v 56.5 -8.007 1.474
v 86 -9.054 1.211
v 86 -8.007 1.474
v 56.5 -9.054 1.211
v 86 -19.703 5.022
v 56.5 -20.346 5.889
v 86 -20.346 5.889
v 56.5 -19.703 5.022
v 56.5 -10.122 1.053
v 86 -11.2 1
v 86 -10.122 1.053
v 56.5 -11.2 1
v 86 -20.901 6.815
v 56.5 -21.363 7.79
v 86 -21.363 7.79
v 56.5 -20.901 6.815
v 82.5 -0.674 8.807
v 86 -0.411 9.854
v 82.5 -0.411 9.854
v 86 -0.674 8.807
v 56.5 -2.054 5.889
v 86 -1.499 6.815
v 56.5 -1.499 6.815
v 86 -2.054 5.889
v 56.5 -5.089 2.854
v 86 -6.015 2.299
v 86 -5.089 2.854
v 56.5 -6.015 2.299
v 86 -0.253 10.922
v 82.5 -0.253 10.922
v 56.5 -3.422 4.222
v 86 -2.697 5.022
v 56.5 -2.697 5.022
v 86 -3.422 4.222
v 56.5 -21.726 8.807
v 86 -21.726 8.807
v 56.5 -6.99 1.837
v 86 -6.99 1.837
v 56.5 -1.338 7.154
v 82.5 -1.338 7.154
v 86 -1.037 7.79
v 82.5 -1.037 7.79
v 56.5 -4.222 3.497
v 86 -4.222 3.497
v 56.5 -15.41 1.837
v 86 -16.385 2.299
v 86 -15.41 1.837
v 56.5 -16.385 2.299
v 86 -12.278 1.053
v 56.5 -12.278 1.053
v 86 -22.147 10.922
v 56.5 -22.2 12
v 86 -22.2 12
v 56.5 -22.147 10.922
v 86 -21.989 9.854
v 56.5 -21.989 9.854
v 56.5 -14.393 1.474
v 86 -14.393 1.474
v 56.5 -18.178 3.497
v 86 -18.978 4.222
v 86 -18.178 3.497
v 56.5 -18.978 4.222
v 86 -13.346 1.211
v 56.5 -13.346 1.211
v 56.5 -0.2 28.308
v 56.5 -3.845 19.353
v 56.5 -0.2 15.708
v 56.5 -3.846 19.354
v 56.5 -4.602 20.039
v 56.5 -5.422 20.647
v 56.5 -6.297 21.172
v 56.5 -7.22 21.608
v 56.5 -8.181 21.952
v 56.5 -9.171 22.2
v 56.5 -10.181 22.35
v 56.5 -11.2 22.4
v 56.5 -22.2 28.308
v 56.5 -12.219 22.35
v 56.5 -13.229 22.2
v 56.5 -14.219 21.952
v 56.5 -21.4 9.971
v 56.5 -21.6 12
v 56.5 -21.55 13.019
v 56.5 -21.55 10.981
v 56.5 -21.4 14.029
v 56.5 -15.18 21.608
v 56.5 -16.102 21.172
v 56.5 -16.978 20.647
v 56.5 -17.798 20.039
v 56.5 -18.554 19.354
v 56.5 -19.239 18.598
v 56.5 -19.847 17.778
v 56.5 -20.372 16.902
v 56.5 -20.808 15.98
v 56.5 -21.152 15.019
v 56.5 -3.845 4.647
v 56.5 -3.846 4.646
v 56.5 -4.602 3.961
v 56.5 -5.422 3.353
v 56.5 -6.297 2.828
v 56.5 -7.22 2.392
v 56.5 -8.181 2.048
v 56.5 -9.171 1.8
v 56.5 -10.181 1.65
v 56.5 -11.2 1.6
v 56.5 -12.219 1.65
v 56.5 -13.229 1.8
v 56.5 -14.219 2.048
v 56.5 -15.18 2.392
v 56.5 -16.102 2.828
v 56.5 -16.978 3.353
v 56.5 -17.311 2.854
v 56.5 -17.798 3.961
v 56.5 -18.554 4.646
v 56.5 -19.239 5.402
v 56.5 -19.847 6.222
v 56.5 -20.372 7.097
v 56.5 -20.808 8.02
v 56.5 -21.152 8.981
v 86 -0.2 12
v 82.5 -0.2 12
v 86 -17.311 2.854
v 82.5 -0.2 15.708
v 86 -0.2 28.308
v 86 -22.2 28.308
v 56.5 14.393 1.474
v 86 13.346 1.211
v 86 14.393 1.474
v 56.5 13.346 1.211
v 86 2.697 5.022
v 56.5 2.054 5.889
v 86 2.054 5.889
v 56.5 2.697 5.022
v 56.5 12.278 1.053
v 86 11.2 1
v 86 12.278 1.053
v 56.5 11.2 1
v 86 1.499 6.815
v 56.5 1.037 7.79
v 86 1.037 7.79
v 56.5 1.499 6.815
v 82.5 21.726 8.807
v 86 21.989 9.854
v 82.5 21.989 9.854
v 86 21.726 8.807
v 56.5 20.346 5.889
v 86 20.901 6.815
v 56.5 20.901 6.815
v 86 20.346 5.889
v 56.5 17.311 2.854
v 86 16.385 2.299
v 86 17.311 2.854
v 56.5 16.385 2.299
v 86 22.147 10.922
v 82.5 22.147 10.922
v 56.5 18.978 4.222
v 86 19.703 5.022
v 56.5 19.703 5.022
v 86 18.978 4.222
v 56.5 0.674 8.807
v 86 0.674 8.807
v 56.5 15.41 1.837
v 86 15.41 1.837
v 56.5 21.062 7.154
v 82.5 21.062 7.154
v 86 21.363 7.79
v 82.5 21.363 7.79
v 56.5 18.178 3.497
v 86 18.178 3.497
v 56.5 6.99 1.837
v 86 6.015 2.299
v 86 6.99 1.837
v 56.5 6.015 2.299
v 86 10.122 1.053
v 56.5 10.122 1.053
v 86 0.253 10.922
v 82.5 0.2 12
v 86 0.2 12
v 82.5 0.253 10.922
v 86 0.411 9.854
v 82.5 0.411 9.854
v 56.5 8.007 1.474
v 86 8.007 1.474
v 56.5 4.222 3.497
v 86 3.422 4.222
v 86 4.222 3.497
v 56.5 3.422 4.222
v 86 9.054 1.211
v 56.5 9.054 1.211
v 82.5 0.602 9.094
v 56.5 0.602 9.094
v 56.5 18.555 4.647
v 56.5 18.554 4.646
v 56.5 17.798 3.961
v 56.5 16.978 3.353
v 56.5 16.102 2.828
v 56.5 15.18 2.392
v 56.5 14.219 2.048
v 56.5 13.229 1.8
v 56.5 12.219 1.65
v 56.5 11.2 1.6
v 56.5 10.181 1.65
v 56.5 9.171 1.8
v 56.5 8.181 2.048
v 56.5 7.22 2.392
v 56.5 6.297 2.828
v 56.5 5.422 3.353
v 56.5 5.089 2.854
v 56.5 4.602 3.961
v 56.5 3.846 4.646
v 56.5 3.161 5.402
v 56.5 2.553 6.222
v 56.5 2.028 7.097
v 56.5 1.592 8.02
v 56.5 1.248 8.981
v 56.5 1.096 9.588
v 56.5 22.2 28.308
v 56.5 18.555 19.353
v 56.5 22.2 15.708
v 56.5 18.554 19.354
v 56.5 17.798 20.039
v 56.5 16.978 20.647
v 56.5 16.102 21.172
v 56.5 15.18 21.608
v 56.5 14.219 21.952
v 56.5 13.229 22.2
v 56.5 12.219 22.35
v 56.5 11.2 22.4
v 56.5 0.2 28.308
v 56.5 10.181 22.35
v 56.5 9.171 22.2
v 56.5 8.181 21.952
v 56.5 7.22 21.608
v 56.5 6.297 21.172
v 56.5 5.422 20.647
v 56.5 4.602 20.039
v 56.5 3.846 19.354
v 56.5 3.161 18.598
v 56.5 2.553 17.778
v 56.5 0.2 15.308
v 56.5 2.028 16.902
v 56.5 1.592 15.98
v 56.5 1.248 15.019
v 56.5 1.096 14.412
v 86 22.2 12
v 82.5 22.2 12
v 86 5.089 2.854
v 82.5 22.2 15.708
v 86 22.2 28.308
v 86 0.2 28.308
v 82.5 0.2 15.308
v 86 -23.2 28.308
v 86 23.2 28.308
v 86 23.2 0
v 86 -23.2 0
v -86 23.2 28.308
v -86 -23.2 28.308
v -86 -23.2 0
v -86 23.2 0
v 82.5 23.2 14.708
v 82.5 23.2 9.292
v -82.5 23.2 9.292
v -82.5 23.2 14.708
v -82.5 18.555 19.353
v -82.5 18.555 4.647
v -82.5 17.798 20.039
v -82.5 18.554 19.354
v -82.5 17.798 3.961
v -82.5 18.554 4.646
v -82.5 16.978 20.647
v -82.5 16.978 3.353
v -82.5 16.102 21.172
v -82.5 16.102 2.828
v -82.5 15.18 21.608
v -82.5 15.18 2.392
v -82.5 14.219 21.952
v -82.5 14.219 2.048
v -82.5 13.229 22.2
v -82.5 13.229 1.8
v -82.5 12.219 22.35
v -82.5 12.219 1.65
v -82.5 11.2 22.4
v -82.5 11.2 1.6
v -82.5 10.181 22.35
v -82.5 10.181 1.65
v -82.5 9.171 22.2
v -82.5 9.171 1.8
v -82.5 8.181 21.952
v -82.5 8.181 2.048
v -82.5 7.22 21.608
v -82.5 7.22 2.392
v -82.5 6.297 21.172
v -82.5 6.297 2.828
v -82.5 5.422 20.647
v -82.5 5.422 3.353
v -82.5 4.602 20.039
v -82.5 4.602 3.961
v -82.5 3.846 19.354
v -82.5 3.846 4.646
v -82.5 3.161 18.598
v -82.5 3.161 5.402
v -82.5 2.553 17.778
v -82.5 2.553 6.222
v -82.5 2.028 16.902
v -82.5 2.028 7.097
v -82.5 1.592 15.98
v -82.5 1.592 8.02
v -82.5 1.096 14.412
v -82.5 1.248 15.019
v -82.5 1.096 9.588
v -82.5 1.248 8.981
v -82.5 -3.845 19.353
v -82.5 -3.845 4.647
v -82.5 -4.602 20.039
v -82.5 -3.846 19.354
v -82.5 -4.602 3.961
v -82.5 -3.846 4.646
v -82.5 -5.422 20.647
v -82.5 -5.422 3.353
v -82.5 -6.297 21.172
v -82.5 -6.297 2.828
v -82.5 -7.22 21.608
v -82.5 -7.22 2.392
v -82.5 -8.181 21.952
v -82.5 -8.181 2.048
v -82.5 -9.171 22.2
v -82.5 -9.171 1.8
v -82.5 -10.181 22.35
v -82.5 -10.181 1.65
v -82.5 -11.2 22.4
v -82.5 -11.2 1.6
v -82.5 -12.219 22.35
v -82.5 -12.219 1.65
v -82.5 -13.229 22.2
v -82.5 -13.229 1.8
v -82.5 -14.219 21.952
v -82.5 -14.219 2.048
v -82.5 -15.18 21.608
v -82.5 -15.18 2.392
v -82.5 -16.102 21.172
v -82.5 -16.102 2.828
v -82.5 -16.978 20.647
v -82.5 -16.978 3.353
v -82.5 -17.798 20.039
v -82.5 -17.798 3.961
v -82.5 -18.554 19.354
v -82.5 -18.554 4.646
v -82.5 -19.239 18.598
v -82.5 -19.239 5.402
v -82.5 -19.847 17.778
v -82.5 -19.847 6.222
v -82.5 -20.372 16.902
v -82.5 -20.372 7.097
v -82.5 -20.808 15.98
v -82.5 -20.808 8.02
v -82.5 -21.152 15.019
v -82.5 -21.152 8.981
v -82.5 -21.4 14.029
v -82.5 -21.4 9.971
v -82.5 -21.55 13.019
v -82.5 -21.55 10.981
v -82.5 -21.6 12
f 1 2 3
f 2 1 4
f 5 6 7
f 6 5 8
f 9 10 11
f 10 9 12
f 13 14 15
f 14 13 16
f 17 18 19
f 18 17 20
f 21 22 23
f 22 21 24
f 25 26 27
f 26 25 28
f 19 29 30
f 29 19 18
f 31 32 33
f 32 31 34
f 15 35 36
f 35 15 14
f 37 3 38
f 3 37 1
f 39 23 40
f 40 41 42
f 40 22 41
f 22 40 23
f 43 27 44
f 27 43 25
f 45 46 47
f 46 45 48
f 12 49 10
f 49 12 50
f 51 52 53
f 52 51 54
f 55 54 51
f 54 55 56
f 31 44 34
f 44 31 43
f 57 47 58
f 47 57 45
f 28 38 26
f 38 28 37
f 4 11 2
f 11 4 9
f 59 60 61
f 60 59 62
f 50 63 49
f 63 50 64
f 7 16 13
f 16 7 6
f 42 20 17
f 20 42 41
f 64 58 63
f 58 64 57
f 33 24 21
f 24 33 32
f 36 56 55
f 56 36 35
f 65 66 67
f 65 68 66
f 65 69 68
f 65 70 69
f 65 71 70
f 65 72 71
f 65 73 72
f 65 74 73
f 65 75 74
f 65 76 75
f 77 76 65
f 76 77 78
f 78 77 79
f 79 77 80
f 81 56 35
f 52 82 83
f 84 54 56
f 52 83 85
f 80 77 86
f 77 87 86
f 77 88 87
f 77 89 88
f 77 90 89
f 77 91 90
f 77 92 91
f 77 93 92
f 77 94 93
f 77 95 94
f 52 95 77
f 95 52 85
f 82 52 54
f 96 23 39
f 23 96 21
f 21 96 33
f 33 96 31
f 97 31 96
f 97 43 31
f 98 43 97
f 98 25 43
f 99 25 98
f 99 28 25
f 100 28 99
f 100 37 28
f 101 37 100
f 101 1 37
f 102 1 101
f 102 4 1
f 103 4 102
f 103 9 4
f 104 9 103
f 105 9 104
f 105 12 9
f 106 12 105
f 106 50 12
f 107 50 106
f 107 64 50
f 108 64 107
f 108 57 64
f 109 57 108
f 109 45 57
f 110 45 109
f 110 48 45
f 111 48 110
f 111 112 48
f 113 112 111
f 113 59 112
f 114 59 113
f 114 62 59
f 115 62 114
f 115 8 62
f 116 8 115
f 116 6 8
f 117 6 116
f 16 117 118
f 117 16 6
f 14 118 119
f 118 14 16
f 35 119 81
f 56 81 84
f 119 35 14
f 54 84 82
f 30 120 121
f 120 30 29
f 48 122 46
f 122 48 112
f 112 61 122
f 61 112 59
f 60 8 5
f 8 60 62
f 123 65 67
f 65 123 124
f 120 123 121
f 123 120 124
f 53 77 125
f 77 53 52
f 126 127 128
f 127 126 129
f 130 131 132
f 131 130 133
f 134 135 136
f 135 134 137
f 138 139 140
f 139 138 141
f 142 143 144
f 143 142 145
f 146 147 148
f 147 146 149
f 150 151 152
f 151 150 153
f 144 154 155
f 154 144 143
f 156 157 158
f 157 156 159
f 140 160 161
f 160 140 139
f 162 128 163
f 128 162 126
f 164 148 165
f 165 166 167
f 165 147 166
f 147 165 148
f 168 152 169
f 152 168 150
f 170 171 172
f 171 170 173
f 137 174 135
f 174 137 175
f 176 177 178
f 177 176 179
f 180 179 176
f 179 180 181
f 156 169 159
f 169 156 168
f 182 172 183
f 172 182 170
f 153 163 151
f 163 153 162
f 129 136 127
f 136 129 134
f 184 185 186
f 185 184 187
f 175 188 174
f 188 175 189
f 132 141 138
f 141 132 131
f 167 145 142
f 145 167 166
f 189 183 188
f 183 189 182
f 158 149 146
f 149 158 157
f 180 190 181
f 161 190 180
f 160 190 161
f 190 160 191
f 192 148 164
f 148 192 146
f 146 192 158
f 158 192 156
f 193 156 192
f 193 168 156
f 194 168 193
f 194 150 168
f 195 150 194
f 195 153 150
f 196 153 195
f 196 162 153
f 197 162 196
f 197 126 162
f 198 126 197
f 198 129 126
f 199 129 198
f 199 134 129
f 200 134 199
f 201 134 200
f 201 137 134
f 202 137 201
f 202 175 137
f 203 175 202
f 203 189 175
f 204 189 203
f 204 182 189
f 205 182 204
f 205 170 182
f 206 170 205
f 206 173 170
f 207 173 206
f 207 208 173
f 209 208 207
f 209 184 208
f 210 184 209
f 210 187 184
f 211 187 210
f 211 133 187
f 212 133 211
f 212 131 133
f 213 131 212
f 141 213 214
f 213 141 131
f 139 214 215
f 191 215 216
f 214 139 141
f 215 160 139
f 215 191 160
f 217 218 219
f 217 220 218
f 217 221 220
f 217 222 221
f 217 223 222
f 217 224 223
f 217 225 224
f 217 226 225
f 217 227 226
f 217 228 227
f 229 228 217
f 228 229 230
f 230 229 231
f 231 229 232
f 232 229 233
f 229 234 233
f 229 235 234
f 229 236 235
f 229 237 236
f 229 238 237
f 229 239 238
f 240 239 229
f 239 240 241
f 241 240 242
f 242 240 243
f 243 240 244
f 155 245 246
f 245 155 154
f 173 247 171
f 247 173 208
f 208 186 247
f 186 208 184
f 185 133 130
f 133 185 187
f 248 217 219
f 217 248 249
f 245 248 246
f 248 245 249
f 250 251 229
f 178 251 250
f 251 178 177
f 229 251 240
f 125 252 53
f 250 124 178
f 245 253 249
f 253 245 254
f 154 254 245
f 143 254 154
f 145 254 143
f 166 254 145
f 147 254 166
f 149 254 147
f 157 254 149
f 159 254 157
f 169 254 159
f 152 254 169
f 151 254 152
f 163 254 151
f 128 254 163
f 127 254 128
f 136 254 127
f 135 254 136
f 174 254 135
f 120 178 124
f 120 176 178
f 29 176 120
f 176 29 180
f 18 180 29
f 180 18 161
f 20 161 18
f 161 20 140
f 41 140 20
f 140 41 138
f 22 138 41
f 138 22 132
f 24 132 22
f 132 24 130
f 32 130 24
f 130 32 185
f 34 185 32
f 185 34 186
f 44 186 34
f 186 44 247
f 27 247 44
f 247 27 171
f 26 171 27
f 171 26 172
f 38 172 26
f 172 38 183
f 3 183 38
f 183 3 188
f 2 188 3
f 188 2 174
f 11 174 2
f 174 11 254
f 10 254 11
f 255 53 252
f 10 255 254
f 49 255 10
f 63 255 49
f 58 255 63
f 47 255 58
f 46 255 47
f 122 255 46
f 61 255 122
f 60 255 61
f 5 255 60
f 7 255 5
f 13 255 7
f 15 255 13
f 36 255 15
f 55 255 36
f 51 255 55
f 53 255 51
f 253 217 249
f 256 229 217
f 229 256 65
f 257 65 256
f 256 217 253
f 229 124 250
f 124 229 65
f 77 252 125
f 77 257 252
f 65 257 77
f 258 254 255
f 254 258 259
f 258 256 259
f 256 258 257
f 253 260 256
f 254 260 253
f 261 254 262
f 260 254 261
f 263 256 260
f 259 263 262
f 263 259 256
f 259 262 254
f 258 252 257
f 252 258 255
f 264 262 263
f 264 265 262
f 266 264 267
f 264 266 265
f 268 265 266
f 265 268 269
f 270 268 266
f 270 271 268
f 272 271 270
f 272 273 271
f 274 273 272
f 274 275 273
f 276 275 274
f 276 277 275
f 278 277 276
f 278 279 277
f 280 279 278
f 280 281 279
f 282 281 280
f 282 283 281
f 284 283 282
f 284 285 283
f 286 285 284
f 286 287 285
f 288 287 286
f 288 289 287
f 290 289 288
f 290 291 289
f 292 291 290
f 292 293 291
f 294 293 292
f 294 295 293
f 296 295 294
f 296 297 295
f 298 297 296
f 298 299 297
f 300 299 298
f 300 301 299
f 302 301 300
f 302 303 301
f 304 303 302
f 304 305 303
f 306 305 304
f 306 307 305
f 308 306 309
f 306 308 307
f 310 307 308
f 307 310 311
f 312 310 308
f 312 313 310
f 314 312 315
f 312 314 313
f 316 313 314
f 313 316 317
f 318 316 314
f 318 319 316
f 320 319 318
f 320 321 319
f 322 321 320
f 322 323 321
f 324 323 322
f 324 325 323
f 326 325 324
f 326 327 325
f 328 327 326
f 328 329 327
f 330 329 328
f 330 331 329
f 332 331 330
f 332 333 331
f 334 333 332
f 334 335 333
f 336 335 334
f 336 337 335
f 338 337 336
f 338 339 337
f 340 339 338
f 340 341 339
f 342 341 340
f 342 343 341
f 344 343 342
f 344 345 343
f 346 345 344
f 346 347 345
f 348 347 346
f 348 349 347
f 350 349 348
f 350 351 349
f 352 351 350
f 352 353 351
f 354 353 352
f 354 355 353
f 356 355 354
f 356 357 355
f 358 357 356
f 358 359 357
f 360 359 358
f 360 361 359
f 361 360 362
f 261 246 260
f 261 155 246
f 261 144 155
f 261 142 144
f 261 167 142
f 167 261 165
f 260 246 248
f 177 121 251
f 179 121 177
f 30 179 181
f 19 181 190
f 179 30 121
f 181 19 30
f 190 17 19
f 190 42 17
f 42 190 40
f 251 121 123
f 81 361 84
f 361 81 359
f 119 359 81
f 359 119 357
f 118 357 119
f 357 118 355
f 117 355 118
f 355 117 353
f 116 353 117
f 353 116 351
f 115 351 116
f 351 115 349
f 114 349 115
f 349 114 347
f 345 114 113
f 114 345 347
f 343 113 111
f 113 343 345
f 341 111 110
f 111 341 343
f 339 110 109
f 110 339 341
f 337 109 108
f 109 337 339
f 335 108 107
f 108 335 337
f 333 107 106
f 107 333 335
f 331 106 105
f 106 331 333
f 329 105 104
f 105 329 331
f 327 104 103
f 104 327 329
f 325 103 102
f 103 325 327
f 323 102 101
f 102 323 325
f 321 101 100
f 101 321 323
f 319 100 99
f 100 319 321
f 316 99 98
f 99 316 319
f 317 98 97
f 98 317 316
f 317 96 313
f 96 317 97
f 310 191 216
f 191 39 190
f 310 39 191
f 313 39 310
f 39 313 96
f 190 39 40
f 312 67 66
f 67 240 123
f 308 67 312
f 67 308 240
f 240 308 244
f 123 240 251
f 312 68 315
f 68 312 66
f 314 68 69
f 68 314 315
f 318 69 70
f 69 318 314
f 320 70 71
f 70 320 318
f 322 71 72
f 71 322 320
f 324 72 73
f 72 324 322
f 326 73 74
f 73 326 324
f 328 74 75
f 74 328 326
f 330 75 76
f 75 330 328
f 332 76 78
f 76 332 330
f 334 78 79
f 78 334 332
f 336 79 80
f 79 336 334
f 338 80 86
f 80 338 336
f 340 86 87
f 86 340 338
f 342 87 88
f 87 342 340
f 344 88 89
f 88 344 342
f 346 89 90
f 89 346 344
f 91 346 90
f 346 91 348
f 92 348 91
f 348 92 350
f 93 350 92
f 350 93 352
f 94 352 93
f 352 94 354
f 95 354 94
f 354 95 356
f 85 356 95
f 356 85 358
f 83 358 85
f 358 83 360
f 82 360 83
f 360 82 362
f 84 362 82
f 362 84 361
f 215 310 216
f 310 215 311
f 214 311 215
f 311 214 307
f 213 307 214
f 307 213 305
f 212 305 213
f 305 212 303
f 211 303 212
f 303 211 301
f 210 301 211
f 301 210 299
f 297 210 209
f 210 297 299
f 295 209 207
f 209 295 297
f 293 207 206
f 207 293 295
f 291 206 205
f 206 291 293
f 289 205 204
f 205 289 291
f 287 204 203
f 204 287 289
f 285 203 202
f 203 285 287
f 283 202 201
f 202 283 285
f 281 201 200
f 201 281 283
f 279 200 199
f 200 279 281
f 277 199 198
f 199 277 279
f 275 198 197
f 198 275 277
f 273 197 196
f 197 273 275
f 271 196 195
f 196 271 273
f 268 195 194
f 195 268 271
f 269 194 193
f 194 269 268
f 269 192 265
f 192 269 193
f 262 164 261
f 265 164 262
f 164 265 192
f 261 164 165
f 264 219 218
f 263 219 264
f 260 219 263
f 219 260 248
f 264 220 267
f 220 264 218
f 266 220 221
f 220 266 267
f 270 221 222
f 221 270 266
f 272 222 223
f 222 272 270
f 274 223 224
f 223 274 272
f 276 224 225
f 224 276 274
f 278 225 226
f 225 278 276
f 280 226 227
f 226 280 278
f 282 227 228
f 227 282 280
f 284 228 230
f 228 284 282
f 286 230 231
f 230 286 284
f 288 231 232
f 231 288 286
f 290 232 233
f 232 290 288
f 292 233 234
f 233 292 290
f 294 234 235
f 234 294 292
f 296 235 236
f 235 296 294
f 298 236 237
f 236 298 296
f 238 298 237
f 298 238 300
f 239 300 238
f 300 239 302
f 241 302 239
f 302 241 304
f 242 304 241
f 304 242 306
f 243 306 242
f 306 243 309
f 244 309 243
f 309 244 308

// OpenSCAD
// file: common.scad
// ============================================================
// common.scad — shared parameters + modules for all designs
// LOCKED PEN SPECIFICATION (do not change)
// ============================================================
PEN_L = 165;      // pen length (mm)
PEN_A = 17;       // pen cross-section minor
PEN_B = 20;       // pen cross-section major (used as diameter envelope)
CLEAR = 0.4;      // fit clearance
WALL  = 1.6;      // minimum wall thickness

$fn = 64;

RCH = PEN_B/2 + CLEAR;   // = 10.4  channel radius
EPS = 0.01;

// --- open-top U trough cut, axis along X, centered at local origin -----------
// Removes a lower half-cylinder of radius r plus a full-width vertical slot
// upward, so the channel is open at the top (no ceiling -> no overhang).
module trough_cut(len, r=RCH, top=80) {
    union() {
        rotate([0,90,0]) cylinder(h=len, r=r, center=true);
        translate([0,0,top/2]) cube([len, 2*r, top], center=true); // slot upward
    }
}

// --- teardrop hole, axis along X, centered at local origin --------------------
// 45-degree self-supporting apex pointing +Z so a horizontal bore can print
// without support.
module teardrop_cut(len, r=RCH) {
    rotate([0,90,0])
        linear_extrude(height=len, center=true)
            union() {
                circle(r=r);
                polygon([[ 0.7071*r, 0.7071*r],
                         [ 0,         1.4142*r],
                         [-0.7071*r,  0.7071*r]]);
            }
}

// --- dial relief: widened open-top pocket at one channel end -----------------
// place at the +X or -X end of a channel so the dose dial clears / can be turned
module dial_relief(end_x, r=RCH+2.2, len=28, top=80) {
    translate([end_x, 0, 0]) trough_cut(len, r, top);
}
// main file
// d2_capsule — enclosed twin teardrop bores ("capsule")
// Family: capsule / enclosed tube bundle. Pens slide in from the open dial end.
// Creative variation: fully enclosed self-supporting teardrop tubes give a
// clean pill/capsule body that protects the pens from dust; one end is opened
// with a top relief so the dose dial is reachable and pens slide out.
include <common.scad>

LBLK = 172;
PITCH = 2*RCH + WALL;             // 22.4
Y1 = -PITCH/2;
Y2 =  PITCH/2;
ZC = WALL + RCH;                  // channel center
APEX = ZC + 1.4142*RCH;           // teardrop apex height ~26.7
HBLK = APEX + WALL;               // enclose apex with a cover  ~28.3
WBLK = PITCH + 2*RCH + 2*WALL;    // 46.4
RELIEF_LEN = 30;
RELIEF_X = PEN_L/2 - RELIEF_LEN/2 + 4;   // open the +X end

difference() {
    translate([0,0,HBLK/2]) cube([LBLK, WBLK, HBLK], center=true);

    // enclosed teardrop tubes (closed top + ends)
    translate([0, Y1, ZC]) teardrop_cut(PEN_L);
    translate([0, Y2, ZC]) teardrop_cut(PEN_L);

    // open the +X end of each tube: top slot + through opening for dial access
    for (y = [Y1, Y2]) {
        translate([RELIEF_X, y, ZC]) trough_cut(RELIEF_LEN, RCH+0.6, 80);
    }
}
